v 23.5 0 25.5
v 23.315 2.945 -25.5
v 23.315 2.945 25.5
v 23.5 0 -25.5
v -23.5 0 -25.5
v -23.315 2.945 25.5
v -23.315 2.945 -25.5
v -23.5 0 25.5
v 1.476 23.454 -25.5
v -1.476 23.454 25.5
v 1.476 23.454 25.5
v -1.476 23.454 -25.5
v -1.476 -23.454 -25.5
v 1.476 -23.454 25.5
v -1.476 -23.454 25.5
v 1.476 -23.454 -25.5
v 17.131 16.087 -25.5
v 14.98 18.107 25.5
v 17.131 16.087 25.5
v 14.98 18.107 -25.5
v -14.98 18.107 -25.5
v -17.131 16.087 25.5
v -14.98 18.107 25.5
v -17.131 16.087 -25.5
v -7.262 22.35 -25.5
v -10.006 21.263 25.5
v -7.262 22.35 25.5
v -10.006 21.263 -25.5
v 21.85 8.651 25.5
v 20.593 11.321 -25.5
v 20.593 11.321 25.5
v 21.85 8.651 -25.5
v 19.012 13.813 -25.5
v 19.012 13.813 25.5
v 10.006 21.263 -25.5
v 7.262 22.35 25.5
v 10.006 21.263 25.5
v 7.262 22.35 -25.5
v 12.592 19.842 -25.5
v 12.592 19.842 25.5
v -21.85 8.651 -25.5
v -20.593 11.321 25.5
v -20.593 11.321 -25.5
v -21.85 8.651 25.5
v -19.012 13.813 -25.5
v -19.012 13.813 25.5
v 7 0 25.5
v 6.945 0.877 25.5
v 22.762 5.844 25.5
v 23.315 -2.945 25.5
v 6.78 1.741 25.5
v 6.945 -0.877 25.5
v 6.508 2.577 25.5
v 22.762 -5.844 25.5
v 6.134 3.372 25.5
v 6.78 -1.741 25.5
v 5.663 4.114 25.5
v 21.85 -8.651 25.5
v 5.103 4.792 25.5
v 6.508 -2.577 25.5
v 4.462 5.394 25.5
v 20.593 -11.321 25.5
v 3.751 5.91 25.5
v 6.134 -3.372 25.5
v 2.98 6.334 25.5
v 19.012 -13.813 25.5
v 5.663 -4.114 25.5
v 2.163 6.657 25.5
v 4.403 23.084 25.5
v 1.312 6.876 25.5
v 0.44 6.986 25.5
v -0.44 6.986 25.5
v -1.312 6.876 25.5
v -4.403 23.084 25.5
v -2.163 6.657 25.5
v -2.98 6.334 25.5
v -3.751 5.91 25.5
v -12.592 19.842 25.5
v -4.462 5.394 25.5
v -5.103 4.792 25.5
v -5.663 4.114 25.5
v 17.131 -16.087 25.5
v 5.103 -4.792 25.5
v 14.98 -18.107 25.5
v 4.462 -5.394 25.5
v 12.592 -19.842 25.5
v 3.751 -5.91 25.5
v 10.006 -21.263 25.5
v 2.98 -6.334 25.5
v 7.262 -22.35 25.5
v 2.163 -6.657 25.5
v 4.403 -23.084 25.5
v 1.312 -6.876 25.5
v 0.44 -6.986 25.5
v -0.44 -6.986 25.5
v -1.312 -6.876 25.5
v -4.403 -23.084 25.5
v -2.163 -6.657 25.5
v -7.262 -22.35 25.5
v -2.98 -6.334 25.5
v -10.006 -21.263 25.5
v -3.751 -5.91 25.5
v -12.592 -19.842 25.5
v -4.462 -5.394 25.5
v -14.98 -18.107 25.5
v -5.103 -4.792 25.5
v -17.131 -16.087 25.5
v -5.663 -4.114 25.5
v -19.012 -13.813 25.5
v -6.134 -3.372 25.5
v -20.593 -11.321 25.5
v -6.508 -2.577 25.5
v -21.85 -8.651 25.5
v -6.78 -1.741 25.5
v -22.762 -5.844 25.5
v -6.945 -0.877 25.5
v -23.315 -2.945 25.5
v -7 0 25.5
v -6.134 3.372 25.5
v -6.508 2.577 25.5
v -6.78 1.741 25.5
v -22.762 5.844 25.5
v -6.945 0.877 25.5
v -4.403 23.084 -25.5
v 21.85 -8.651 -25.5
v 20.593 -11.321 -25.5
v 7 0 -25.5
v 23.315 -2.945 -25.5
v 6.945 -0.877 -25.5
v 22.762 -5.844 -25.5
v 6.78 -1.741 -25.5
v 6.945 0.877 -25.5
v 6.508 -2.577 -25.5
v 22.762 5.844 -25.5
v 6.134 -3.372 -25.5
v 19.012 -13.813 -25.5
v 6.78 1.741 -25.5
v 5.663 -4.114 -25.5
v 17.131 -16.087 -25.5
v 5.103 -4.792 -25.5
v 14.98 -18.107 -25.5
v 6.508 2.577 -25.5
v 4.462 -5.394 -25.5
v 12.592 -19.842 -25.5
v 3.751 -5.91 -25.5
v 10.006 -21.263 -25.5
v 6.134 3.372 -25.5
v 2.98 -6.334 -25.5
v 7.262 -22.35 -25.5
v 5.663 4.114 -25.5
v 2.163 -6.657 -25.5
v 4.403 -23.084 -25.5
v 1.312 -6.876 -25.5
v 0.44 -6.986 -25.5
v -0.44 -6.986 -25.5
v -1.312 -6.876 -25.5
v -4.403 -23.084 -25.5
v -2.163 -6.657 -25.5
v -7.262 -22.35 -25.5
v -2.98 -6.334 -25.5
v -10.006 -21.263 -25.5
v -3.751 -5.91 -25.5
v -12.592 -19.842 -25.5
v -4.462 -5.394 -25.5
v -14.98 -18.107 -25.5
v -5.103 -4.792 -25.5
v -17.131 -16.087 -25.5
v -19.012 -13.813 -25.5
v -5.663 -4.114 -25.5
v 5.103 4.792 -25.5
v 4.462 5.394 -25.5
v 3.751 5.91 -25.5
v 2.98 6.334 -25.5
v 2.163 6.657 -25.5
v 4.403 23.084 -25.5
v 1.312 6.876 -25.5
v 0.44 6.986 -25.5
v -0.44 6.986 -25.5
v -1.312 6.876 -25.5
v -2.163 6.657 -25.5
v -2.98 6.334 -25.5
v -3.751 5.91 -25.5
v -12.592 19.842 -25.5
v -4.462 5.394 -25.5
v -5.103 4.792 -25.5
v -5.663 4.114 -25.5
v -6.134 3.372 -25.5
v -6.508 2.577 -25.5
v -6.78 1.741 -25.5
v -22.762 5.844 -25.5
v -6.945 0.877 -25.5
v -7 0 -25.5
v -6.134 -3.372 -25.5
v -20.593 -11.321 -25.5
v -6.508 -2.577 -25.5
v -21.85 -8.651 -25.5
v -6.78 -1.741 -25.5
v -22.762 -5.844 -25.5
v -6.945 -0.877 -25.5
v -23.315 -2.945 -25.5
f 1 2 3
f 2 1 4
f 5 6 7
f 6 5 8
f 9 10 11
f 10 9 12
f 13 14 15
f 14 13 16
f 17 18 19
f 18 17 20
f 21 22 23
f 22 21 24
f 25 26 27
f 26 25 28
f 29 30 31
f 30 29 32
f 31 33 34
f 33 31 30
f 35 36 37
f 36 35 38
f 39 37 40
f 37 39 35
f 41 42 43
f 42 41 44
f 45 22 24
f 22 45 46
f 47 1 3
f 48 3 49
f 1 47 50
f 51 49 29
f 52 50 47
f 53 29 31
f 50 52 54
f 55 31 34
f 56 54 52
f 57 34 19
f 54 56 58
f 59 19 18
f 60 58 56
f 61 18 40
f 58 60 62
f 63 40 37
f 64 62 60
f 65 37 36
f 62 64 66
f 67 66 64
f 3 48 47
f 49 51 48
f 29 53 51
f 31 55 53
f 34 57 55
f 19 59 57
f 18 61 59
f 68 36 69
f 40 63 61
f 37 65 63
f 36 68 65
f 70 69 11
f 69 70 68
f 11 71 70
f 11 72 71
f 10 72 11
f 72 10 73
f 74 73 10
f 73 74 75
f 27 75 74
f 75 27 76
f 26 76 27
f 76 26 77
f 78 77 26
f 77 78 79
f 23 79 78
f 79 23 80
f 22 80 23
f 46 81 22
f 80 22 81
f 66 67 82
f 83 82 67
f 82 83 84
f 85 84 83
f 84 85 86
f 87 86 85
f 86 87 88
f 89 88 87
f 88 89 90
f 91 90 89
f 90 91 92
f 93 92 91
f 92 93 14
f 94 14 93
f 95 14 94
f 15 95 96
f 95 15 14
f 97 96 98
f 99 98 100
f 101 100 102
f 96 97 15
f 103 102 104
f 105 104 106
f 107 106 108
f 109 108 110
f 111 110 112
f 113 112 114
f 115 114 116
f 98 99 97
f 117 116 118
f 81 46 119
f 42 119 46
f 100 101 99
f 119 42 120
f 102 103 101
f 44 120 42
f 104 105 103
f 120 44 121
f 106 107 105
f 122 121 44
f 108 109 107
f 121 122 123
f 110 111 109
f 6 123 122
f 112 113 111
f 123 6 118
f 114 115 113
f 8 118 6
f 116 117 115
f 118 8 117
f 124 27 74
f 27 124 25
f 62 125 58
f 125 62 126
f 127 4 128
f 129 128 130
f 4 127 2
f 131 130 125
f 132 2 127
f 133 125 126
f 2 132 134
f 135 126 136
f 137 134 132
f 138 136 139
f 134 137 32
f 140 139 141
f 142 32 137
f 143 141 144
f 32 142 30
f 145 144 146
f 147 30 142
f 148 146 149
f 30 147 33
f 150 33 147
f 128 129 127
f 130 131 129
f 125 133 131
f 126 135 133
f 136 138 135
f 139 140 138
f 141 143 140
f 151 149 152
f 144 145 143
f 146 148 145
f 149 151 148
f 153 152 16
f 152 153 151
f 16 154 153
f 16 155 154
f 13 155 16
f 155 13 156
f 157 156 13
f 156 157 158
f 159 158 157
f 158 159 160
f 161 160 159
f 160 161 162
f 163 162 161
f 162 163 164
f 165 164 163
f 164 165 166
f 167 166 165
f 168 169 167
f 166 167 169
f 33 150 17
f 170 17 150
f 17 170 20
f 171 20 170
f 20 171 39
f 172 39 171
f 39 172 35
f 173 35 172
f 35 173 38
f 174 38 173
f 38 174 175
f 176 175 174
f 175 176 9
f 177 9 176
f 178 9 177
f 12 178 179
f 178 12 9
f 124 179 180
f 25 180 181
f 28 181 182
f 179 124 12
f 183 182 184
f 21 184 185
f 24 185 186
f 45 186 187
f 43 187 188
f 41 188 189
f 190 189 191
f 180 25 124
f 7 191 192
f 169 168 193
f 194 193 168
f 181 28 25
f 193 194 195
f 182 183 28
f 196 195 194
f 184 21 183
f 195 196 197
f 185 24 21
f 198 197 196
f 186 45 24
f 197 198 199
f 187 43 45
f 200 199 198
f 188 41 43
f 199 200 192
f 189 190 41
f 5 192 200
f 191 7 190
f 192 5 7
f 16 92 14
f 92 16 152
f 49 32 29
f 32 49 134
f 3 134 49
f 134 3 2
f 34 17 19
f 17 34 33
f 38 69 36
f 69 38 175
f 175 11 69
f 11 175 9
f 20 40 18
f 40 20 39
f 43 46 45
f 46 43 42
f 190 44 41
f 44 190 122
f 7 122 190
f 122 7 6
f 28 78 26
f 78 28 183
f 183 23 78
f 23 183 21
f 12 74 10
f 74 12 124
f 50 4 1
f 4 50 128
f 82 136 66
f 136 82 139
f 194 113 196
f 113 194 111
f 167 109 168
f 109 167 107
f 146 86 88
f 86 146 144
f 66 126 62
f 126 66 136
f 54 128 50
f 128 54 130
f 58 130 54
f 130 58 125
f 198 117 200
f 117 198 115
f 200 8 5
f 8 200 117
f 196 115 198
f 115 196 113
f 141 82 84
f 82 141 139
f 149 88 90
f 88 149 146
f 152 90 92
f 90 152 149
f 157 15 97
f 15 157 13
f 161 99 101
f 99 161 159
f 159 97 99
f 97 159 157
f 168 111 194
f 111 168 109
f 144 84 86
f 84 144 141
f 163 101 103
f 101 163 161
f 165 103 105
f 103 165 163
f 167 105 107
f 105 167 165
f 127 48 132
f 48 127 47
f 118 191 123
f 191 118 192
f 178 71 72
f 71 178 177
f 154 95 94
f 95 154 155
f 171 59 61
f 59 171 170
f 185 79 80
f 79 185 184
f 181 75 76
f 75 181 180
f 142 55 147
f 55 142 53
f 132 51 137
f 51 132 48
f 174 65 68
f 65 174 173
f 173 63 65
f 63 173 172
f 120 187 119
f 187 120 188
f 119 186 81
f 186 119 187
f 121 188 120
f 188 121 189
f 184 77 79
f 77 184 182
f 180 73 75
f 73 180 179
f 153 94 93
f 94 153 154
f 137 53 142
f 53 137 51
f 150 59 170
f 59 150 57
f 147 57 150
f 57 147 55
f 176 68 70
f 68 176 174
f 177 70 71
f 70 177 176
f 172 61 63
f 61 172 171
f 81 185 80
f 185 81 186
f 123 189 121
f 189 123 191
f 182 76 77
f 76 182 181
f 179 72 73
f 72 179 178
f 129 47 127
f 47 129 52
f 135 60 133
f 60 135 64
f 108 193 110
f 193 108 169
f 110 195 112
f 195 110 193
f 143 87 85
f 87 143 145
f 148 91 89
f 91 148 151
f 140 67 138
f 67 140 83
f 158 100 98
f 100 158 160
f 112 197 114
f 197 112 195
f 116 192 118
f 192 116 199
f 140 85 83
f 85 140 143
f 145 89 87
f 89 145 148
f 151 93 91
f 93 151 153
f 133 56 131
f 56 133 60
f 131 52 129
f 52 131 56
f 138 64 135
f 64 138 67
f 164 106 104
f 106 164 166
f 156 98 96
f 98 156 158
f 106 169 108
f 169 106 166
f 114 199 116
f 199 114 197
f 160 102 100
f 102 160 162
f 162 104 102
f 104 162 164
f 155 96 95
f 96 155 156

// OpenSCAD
$fn = 50;


difference() {
	union() {
		translate(v = [0, 0, -25.5000000000]) {
			cylinder(h = 51, r = 23.5000000000);
		}
	}
	union() {
		translate(v = [0, 0, -100.0000000000]) {
			cylinder(h = 200, r = 7);
		}
	}
}
